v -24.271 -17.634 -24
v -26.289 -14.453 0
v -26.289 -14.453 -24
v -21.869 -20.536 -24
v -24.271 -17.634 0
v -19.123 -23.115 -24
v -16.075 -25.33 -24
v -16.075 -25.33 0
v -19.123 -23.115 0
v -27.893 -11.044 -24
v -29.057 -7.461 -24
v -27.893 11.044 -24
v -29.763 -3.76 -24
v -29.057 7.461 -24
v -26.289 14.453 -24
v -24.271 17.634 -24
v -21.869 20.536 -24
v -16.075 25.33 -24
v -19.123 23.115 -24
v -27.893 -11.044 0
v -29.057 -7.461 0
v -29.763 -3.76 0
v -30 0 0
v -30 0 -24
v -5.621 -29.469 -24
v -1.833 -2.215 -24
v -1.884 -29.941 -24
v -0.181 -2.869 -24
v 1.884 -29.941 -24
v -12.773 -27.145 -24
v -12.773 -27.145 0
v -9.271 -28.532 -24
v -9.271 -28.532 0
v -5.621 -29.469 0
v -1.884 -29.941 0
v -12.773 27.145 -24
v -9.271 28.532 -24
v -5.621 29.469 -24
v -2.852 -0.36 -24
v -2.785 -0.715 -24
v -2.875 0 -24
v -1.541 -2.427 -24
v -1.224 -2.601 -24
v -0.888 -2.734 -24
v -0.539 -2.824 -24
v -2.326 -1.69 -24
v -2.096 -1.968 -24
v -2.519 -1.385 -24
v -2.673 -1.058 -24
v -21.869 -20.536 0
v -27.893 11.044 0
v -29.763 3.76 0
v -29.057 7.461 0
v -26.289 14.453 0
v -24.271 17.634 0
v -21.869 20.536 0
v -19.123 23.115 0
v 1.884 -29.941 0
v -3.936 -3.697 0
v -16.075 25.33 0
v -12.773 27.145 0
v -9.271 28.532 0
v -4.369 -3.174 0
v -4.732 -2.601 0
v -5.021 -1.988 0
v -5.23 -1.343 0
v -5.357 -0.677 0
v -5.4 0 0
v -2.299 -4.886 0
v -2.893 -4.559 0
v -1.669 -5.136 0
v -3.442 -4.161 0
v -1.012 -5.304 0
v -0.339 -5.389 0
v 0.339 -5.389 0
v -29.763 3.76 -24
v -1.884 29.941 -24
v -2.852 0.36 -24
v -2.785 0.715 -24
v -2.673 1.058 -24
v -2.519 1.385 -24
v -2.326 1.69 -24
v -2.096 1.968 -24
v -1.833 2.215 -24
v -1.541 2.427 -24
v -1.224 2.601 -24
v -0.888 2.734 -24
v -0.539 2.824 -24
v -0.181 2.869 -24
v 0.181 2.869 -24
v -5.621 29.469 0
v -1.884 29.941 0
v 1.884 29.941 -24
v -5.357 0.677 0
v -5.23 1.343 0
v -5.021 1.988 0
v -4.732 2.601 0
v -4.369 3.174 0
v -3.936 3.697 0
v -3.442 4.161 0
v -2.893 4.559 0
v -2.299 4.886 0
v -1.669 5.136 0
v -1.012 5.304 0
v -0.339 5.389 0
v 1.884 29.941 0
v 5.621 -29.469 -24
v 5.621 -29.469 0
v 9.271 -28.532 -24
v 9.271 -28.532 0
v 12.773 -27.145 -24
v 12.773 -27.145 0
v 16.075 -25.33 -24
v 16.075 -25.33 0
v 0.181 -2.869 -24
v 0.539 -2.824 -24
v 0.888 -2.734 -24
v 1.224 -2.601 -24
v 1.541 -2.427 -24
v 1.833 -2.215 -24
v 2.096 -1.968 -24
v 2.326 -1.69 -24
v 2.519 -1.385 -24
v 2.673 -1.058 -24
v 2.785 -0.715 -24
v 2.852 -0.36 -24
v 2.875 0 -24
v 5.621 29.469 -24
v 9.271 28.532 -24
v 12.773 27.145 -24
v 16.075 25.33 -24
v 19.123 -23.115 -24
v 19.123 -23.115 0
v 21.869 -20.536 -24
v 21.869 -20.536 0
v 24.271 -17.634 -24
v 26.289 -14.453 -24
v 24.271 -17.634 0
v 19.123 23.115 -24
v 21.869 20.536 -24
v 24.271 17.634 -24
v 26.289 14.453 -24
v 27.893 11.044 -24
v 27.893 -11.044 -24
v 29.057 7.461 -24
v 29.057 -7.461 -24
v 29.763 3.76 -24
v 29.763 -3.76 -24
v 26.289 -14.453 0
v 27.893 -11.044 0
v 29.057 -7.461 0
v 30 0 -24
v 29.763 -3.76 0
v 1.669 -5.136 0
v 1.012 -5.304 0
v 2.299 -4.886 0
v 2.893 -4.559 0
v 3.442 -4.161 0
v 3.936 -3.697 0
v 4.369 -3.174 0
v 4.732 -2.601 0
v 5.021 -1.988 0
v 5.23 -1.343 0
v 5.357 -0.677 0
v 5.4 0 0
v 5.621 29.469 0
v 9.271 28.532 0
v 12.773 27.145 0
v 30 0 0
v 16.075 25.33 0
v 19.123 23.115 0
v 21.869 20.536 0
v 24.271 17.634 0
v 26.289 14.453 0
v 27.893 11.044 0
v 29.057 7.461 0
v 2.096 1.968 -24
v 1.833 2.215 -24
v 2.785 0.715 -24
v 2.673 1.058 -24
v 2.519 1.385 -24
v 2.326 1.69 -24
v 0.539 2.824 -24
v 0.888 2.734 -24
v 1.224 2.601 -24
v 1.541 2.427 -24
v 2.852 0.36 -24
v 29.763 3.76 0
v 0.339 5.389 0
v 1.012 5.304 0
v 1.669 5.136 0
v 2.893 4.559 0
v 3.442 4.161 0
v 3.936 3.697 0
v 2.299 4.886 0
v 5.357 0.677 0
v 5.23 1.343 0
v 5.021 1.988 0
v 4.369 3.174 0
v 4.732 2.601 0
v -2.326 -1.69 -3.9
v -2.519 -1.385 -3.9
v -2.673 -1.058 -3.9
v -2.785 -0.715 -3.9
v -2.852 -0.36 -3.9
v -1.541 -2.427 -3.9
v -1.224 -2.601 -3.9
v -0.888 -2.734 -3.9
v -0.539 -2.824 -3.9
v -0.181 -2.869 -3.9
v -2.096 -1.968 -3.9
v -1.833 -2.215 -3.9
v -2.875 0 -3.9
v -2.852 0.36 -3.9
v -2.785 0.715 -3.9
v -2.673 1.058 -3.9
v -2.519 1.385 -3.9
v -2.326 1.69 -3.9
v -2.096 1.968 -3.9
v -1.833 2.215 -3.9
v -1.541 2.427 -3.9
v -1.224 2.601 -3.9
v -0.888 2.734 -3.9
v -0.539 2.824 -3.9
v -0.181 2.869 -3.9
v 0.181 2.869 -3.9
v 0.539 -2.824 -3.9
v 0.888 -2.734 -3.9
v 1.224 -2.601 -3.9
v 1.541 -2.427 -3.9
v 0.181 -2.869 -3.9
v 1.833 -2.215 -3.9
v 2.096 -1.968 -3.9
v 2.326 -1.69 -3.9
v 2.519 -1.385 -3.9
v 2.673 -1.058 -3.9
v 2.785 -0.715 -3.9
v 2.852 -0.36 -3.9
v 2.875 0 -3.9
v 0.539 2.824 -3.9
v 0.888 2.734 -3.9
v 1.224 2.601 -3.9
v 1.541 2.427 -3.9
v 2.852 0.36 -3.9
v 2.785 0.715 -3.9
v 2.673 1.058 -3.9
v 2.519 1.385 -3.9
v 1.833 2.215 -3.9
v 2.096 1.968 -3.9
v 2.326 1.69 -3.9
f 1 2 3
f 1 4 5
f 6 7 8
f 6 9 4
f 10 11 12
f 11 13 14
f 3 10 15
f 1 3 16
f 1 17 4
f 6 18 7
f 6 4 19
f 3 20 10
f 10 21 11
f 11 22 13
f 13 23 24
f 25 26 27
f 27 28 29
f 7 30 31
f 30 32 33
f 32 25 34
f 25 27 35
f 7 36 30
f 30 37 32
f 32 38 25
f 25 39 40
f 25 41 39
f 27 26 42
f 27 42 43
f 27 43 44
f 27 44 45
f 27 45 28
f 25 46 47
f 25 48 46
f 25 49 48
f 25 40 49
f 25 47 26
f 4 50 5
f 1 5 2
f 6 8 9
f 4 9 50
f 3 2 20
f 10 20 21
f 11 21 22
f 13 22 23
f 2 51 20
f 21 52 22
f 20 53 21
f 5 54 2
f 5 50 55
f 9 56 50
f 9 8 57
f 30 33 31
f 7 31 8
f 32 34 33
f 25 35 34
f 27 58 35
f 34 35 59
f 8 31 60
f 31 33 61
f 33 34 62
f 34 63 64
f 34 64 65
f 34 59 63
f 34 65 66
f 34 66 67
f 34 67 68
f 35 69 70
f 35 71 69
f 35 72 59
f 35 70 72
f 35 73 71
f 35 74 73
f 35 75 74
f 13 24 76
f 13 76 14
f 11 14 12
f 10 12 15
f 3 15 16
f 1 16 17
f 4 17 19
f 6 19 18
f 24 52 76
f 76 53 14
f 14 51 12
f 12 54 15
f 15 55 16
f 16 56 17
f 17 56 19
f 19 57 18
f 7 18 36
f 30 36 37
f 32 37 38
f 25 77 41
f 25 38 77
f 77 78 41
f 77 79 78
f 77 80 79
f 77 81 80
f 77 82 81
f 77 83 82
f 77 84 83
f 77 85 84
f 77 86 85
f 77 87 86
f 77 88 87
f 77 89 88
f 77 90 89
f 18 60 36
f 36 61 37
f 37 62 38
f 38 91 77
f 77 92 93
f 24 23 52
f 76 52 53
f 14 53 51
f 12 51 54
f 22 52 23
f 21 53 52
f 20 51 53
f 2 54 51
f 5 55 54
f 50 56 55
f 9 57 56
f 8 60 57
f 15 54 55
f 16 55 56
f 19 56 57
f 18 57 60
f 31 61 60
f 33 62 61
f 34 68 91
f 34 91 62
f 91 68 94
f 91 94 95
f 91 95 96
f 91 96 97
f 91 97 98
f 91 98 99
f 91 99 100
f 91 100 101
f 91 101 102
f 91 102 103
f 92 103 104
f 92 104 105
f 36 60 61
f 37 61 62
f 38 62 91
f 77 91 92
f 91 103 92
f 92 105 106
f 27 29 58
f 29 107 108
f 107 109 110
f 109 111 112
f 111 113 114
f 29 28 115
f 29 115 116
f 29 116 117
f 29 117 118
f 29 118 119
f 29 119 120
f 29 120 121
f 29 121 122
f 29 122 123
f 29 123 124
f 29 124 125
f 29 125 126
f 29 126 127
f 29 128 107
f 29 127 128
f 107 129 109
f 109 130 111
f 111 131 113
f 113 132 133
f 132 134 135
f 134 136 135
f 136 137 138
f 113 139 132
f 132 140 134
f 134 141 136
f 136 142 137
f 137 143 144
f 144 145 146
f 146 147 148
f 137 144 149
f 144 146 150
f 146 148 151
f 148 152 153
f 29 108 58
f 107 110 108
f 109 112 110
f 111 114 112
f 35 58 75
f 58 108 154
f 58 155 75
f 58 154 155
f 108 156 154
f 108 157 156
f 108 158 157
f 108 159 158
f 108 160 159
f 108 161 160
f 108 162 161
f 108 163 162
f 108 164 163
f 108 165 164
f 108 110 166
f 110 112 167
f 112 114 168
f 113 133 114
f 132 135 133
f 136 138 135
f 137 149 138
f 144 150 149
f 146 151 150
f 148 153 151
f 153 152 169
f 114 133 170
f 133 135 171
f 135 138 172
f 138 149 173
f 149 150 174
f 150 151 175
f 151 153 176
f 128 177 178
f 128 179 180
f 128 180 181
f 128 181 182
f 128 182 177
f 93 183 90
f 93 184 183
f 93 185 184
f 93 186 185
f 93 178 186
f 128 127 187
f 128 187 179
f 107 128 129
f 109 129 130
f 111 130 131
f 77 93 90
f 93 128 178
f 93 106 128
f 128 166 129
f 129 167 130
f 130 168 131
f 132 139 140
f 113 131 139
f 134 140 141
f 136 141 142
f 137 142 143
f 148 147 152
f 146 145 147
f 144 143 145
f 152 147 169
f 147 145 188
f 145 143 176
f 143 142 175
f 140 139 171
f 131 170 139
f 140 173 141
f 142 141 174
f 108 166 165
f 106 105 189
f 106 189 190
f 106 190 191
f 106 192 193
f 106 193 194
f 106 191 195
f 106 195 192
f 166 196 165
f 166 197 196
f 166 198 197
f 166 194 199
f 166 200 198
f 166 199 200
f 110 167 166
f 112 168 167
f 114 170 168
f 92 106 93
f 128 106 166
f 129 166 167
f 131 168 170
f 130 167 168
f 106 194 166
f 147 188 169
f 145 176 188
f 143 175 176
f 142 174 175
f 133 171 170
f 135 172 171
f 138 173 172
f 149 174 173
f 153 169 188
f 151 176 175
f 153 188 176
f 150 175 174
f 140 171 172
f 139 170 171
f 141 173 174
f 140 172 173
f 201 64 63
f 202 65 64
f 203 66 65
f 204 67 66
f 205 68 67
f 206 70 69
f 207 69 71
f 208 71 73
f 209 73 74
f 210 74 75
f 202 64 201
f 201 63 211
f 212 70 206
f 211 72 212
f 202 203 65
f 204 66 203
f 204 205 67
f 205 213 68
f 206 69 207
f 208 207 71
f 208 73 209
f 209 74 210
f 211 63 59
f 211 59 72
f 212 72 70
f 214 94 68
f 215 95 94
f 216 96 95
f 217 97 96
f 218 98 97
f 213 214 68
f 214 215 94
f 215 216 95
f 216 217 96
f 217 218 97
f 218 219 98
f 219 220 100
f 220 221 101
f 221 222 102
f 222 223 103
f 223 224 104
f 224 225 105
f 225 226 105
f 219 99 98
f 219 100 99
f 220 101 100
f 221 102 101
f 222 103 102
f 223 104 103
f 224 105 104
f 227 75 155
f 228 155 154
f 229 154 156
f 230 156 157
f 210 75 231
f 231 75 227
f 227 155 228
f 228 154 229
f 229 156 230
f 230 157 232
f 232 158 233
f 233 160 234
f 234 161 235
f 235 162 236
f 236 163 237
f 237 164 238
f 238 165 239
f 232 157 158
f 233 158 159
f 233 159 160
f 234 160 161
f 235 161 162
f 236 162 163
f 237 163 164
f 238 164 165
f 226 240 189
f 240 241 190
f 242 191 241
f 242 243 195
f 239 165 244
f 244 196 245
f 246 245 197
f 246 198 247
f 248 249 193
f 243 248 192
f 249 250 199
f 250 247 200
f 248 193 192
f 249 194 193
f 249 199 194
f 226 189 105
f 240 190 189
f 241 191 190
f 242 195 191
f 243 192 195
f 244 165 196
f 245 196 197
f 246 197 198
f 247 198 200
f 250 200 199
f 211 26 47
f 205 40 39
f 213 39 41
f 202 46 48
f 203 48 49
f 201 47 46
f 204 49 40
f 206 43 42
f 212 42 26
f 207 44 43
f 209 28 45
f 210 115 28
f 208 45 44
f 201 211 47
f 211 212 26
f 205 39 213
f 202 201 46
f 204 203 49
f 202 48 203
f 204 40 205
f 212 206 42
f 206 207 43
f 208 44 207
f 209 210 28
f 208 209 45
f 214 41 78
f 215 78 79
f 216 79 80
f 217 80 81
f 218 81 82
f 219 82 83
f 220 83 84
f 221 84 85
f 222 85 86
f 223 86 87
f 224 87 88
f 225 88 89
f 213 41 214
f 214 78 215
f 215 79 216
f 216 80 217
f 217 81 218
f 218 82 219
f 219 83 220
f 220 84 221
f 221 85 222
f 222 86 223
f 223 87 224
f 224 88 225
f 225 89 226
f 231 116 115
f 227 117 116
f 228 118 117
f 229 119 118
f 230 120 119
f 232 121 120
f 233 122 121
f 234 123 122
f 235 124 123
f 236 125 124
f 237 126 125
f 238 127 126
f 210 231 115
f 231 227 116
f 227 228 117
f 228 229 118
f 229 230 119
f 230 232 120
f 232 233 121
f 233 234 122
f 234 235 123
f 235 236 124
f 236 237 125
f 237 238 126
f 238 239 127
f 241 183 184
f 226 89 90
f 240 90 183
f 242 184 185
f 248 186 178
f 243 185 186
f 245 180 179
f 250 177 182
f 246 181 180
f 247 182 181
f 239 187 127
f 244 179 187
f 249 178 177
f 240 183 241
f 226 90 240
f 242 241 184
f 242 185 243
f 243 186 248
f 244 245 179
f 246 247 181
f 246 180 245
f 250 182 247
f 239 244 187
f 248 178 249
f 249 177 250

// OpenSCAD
$fn = 50;

difference() {
	union() {
		translate(v = [0, 0, -24.0]) {
			cylinder(h = 24, r = 30.0);
		}
		#translate(v = [0, 0, -27.0]) {
			cylinder(h = 27, r = 2.875);
		}
	}
	union() {
		translate(v = [0, 0, 0]) {
			rotate(a = [0, 0, 0]) {
				difference() {
					union() {
						translate(v = [0, 0, -27.0]) {
							cylinder(h = 27, r = 2.6);
						}
						translate(v = [0, 0, -3.9]) {
							cylinder(h = 3.9, r1 = 2.875, r2 = 5.4);
						}
						translate(v = [0, 0, -27.0]) {
							cylinder(h = 27, r = 2.875);
						}
						translate(v = [0, 0, -27.0]) {
							cylinder(h = 27, r = 2.6);
						}
					}
					union();
				}
			}
		}
	}
}
